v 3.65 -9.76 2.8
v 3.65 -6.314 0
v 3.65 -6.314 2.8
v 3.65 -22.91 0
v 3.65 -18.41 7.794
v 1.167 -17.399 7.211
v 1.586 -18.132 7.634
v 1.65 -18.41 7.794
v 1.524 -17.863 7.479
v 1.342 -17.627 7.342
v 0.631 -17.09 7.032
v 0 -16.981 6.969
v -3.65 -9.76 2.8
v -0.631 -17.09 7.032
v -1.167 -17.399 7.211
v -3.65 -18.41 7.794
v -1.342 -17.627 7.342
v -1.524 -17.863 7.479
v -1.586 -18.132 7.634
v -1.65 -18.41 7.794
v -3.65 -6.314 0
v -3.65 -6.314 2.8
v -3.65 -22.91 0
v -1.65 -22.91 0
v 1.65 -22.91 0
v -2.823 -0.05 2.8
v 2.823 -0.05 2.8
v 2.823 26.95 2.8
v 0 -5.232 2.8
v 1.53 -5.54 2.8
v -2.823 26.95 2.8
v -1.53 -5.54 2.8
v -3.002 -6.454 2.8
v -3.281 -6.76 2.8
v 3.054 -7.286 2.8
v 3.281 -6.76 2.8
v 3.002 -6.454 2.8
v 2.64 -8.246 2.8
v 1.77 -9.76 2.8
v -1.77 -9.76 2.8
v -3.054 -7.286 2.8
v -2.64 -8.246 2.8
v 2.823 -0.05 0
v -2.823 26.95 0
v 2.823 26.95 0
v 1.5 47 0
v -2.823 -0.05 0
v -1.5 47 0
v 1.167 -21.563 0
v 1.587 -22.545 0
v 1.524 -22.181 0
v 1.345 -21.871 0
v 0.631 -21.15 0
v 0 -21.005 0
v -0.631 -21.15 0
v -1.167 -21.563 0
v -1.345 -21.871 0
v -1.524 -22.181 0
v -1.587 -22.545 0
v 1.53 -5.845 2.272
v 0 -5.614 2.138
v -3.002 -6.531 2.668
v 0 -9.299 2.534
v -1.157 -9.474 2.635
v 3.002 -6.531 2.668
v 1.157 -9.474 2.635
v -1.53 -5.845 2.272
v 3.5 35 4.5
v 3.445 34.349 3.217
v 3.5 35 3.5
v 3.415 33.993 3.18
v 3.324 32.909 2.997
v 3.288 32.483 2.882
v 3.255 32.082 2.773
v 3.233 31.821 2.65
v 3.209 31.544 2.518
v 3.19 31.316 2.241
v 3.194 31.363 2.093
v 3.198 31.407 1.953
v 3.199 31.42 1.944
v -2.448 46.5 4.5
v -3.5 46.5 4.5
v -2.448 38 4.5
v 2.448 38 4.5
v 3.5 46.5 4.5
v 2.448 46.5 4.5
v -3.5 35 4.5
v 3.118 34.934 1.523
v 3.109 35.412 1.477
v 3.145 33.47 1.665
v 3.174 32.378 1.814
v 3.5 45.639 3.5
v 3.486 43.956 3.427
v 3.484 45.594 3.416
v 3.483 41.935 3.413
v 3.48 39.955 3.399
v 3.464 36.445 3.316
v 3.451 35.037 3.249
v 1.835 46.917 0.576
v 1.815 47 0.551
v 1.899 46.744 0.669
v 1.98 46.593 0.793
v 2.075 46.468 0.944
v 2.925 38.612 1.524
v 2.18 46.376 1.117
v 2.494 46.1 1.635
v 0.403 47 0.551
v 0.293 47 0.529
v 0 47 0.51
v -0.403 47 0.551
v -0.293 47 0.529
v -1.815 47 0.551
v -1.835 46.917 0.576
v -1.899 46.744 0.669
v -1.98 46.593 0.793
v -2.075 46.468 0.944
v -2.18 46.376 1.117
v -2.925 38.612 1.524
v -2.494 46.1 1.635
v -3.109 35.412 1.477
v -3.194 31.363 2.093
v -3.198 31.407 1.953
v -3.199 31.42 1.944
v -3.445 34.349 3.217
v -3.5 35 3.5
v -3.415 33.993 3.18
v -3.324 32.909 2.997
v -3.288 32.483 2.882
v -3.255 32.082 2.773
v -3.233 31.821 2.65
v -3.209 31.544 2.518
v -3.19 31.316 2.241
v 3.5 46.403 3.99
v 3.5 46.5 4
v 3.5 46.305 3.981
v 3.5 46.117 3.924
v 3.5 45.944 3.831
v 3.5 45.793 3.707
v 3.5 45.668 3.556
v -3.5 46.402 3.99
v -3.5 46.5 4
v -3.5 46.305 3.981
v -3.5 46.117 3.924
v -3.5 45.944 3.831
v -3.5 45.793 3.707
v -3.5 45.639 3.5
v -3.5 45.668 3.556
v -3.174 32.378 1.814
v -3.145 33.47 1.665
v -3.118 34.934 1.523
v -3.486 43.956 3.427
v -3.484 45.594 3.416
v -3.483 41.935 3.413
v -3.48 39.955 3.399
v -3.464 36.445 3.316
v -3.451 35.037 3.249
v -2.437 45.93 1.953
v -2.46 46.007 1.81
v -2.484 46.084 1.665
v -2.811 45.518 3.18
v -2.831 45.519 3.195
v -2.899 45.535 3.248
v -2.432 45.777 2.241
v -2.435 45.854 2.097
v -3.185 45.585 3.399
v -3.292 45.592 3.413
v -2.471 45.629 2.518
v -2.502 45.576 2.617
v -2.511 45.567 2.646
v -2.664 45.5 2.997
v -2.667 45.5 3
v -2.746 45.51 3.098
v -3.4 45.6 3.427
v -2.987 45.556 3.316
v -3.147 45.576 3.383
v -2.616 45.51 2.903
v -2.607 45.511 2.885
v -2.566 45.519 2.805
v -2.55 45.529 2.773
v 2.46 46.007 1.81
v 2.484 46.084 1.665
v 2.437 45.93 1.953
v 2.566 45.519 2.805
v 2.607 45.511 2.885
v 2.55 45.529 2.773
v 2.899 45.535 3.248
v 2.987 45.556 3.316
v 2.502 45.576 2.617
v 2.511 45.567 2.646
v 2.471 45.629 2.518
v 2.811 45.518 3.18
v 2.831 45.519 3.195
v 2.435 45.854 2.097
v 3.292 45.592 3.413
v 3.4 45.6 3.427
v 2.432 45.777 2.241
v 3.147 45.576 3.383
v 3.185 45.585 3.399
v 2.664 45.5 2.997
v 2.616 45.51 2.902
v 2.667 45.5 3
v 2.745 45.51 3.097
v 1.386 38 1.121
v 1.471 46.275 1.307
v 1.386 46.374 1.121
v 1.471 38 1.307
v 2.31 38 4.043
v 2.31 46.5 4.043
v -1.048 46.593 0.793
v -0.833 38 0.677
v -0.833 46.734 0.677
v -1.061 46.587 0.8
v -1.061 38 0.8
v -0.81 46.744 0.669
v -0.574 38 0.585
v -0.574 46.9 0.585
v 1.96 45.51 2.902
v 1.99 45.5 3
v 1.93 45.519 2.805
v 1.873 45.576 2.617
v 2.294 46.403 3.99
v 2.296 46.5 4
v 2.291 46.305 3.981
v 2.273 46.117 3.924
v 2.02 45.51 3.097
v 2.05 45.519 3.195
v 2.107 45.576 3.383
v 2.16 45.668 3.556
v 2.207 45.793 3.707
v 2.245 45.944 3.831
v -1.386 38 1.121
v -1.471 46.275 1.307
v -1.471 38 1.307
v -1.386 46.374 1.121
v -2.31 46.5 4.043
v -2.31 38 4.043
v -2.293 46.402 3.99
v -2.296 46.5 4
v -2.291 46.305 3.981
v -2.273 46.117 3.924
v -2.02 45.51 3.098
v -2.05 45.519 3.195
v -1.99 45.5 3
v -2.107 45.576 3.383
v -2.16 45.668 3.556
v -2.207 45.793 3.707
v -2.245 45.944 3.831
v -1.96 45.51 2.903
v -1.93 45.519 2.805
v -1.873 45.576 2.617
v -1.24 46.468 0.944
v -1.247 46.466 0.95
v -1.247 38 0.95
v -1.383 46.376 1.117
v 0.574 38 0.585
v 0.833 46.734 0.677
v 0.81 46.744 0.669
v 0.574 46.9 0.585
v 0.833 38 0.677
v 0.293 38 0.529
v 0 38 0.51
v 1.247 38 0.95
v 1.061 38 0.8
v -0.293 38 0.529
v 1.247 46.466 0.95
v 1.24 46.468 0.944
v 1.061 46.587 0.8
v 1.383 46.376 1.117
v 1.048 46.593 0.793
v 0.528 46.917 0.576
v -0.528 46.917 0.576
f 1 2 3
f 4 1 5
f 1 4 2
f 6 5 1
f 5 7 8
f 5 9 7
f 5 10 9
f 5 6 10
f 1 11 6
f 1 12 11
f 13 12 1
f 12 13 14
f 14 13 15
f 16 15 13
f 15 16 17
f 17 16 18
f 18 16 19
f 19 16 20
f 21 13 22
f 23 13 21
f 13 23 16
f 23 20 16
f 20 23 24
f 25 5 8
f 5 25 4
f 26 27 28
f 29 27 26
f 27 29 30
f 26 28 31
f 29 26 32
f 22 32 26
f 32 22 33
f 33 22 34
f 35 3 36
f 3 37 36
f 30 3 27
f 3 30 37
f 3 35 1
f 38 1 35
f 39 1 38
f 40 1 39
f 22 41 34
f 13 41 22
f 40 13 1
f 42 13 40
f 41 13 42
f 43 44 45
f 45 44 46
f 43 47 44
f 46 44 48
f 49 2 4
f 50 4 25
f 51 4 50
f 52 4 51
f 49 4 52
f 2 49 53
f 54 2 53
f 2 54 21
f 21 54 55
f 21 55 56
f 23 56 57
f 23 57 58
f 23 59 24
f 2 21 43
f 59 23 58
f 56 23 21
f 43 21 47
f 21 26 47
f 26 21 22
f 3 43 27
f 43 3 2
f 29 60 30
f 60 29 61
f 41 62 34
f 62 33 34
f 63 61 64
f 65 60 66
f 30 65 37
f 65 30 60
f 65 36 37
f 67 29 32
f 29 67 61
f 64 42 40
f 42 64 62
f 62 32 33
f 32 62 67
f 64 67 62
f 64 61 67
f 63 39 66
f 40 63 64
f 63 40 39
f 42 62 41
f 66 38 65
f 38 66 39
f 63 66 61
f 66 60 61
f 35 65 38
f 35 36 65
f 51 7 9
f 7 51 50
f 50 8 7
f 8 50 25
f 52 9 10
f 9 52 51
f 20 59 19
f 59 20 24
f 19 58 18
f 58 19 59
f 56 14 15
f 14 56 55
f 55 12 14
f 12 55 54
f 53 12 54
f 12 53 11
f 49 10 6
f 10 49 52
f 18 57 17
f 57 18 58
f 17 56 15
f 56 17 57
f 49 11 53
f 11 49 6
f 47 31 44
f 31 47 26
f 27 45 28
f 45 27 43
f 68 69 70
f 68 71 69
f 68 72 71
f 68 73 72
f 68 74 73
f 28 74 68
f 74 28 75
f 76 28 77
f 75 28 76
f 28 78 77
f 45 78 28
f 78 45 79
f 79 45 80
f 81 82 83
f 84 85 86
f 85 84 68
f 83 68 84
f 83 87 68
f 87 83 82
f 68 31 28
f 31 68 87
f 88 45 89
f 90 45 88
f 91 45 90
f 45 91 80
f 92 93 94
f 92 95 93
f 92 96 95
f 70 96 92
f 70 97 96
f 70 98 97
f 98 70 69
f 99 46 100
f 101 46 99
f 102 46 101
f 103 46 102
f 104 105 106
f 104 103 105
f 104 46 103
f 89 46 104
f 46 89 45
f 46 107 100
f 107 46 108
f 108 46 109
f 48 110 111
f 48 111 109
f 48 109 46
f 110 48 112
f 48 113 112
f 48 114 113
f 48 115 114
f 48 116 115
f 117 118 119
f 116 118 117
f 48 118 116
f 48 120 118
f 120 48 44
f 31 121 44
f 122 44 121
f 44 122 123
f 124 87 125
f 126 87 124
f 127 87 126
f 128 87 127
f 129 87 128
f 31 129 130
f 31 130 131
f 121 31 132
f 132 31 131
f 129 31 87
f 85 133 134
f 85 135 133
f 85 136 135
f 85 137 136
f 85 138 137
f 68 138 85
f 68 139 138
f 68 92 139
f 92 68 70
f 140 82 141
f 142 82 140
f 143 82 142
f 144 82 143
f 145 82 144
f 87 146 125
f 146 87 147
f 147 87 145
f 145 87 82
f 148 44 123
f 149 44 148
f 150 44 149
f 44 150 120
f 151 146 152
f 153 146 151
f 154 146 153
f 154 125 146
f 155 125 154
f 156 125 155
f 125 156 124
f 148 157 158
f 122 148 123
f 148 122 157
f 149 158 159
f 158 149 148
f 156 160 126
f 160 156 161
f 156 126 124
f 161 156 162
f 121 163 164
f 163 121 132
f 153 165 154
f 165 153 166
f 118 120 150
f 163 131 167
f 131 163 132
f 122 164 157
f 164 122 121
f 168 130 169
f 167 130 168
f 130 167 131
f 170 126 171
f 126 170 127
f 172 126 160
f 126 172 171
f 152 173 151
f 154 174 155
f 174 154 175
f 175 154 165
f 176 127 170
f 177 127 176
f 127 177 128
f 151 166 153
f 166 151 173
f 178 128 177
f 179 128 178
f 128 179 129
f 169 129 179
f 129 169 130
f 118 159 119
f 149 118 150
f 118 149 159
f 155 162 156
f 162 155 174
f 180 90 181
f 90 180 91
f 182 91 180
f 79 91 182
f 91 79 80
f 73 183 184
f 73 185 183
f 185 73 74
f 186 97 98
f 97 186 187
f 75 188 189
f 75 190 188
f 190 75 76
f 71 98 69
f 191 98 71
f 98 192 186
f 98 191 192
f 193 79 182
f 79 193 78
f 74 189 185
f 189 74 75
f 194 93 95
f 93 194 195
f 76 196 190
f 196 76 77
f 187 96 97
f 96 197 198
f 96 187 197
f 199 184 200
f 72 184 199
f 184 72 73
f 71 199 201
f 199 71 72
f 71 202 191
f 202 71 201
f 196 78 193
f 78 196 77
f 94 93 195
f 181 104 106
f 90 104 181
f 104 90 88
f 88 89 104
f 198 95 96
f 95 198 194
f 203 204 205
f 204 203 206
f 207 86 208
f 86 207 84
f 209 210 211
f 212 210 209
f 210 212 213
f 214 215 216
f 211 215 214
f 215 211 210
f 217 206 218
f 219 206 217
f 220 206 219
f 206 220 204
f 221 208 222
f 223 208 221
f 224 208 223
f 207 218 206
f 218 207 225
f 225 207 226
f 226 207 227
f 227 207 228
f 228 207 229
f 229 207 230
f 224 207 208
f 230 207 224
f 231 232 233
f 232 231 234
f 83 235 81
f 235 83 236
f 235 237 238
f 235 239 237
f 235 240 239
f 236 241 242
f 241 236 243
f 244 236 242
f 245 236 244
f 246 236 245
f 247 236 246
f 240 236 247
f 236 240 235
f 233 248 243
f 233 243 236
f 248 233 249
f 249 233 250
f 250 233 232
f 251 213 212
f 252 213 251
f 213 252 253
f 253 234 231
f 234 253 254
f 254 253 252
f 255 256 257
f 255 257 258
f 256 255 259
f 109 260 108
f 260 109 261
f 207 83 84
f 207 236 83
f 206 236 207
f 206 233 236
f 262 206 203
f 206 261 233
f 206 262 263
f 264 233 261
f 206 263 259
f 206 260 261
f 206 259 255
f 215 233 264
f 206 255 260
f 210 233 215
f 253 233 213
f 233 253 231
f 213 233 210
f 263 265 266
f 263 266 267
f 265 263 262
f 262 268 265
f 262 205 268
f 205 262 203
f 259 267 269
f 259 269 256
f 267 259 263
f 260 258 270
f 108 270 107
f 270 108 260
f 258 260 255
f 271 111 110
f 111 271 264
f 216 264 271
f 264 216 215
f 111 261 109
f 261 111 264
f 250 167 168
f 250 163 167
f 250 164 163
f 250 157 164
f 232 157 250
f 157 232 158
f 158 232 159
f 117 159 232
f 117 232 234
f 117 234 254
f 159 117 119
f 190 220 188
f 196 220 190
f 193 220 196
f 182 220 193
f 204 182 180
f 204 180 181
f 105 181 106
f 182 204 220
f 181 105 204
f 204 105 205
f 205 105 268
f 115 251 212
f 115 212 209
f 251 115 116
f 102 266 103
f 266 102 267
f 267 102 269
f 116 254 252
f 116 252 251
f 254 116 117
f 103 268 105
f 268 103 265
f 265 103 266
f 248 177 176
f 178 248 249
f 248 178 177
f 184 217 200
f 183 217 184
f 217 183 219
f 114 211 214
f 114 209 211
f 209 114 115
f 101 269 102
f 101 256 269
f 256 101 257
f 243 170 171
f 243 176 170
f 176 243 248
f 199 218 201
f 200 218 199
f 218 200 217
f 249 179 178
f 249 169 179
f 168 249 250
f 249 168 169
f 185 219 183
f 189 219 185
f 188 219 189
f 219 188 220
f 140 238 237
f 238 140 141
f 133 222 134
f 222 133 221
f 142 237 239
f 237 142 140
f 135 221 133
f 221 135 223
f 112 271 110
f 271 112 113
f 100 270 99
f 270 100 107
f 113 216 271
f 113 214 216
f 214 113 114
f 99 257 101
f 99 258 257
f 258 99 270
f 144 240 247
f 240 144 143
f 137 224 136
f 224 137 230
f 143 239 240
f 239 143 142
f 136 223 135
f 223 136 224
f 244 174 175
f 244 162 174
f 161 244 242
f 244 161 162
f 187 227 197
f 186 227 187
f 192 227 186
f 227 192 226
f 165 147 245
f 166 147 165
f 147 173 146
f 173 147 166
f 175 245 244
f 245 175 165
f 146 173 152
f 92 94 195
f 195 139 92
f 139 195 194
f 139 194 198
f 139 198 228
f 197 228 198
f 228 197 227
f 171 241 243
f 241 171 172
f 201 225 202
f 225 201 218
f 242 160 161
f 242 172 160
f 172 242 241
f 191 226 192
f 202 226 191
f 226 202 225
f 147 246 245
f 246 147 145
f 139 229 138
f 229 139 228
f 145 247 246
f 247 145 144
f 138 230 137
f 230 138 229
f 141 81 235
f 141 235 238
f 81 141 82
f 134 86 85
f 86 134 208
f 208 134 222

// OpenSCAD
// file: microscope_parameters.scad
/******************************************************************
*                                                                 *
* OpenFlexure Microscope: Microscope Parameters                   *
*                                                                 *
* This is the top-level configuration file for the OpenFlexure    *
* microscope, an open microscope and 3-axis translation stage.    *
* It gets really good precision over a ~10mm range, by using      *
* plastic flexure mechanisms.                                     *
*                                                                 *
* Generally I've tried to put parts (or collections of closely    *
* related parts) in their own files.  However, all the parts      *
* depend on the geometry of the microscope - so these parameters  *
* are gathered together here.  In general, the ones you might     *
* to change are towards the top!  Lower-down ones are defined in  *
* terms of higher-up ones - confusion might arise if you redefine *
* these later...                                                  *
*                                                                 *
* (c) Richard Bowman, January 2016                                *
* Released under the CERN Open Hardware License                   *
*                                                                 *
* http://www.github.com/rwb27/openflexure_microscope              *
* http://www.docubricks.com/projects/openflexure-microscope       *
* http://www.waterscope.org                                       *
*                                                                 *
******************************************************************/

d = 0.05;
$fn=32;

// These are the most useful parameters to change!
big_stage = false;
motor_lugs = true;
version_numstring = "5.17.2";
camera = "picamera_2"; //see cameras/camera.scad for valid values
optics = big_stage?"rms_f40d16":"pilens"; //see optics.scad for valid values

// This sets the basic geometry of the microscope
sample_z = big_stage?65:40; // height of the top of the stage
leg_r = big_stage?30:25; // radius of innermost part of legs (stage size)
hole_r = big_stage?15:10; // size of hole in the stage
xy_lever_ratio = big_stage?4.0/7.0:1.0; // mechanical advantage of actuator over stage - can be used to trade speed and precision
z_lever_ratio = big_stage?2.4:2.6; // as above, for Z axis (must be >1)
// The variables below affect the position of the objective mount
z_strut_l = big_stage?20:15; //length of struts supporting Z carriage
objective_clip_y = big_stage?12:6; // y position of clip for optics
objective_clip_w = 10; // width of the dovetail clip for the optics
foot_height = 15; //height of the feet (distance from bottom of body to table)

// These variables set the dimensions of flexures
// You might want to tweak them if your material (or printer)
// is different from the ones I've tested, though ABS/PLA extrusion
// is generally fine with my parameters
stage_flex_w = 4; // width of XY axis flexures
zflex_l = 1.5;    // length of (all) flexible bits
zflex_t = 0.75;   // thickness of (all) flexible bits
zflex = [stage_flex_w, zflex_l, zflex_t]; // the above in new-style format
flex_a = 0.15;    // sine of the angle through which flexures can be bent

// Compile a sensible version string
version_string = str("v",version_numstring, big_stage?"-LS":"-SS", sample_z, motor_lugs?"-M":"");
echo(str("Compiling OpenFlexure Microscope ",version_string));

stage_t=5; //thickness of the XY stage (at thickest point, most is 1mm less)
flex_z1 = 0;      // z position of lower flexures for XY axis
flex_z2 = sample_z-stage_t; //height of upper XY flexures
z_strut_t = 6;  // (z) thickness of struts for Z axis
z_flex_w = 4;   // width of struts for Z axis
leg = [4,stage_flex_w,flex_z2+zflex_t]; // size of vertical legs
leg_middle_w = 12; // width of the middle part of each leg
actuator_h = 25; //height of the actuator columns
dz = 0.5; //small increment in Z (~ 2 layers)

leg_outer_w = leg_middle_w + 2*zflex_l + 2*leg[0]; // overall width of parallelogram legs that support the stagef
actuator = [3*1.2+2*2,(flex_z2 - flex_z1)*xy_lever_ratio,6]; // dimensions of the core part of the actuating levers for X and Y - NB should match the column_base_r in compact_nut_seat.scad
actuating_nut_r = (flex_z2 - flex_z1)*xy_lever_ratio; // distance from leg_r to the actuating nut/screw for the XY axes
xy_actuator_travel = actuating_nut_r*0.15; // distance moved by XY axis actuators
z_flexure_x = (leg_r-zflex_l-max(5,leg[2]*0.1))*sqrt(2); // x position of the outside of the Z-axis static anchors (either side of the XY stage, on the X axis)
z_flexure_spacing = min(flex_z2-actuator[2]-z_strut_l*0.22-2, 30); // distance between the two sets of flexures on the Z axis
z_carriage = [(z_flexure_x-zflex_l*2-z_strut_l)+d,4,z_flexure_spacing+zflex_t]; //size of the moving block for the Z carriage
z_nut_y = (z_strut_l+zflex_l)*z_lever_ratio+zflex_l/2; // position of Z actuator
z_actuator_travel = z_nut_y*0.15; // distance moved by the Z actuator
z_carriage_y = z_strut_l+2*zflex_l; // y position of moving pivot on Z axis
z_link_w = 4; // width of linking bar between top Z-axis flexure struts
bridge_dz = 10; // spacing between thin links on legs
base_t=1; // thickness of the flat base of the structure
wall_h=15; // height of the stiffening vertical(ish) walls
wall_t=2; //thickness of the stiffening walls
zawall_h = z_flexure_spacing - 5; //height of wall near Z anchor
zbwall_h = z_actuator_travel+z_strut_t+1+2; //height of bridge over Z lever
illumination_clip_y = (-(leg_r-zflex_l-wall_t/2+leg_outer_w/2)/sqrt(2)
                       -wall_t/2-1); //position of clip for
                      // illumination/back foot.  This is set to
                      // coincide with the wall between the back
                      // two legs.
illumination_arm_screws = [[0,illumination_clip_y+3,0],
                           [-z_flexure_x+3,-3,0],
                           [z_flexure_x-3,-3,0]];
                      // positions of screws that mount the adjustable version of the 
                      // illumination arm
condenser_clip_y = -8; //position of dovetail for condenser assembly
base_mounting_holes = [[-20,z_nut_y-4,0],[20,z_nut_y-4,0],[-z_flexure_x-4,-8,0],[z_flexure_x+4,-8,0]]; // holes to screw the microscope to a baseplate
// main file
/*

Tools for assembling the OpenFlexure Microscope v5.16

(c) 2016 Richard Bowman - released under CERN Open Hardware License

*/

use <utilities.scad>;
use <compact_nut_seat.scad>;
include <microscope_parameters.scad>;

ns = nut_slot_size();
shaft_d = nut_size()*1.1;
gap = 9; //size of the gap between gear and screw seat
swing_a = 30; //angle through which the tool swings
sso = ss_outer(25); //outer size of screw seat
handle_w = shaft_d+4; //width of the "handle" part
handle_l = sso[0]/2+gap; //length of handle part


module tool_handle(){
    w = handle_w;
    difference(){
        sequential_hull(){
            rotate([-swing_a,0,0]) translate([-w/2,0,0]) cube([w,sso[0]/2,gap]);
            translate([-w/2,ns[2],0]) cube([w,d,ns[2]]);
            translate([-w/2,sso[0]/2*cos(swing_a)+gap*sin(swing_a),0]) cube([w,d,ns[2]]);
            translate([-ns[0]/2,handle_l,0]) cube([ns[0],d,ns[2]]);
        }
        //ground (or bottom of gear)
        mirror([0,0,1]) cylinder(r=999,h=999,$fn=4);
        //screw seat (in swung-in position)
        rotate([0,180-swing_a,-90]) translate([0,0,-(gap+sso[2]/2)]) screw_seat_shell(25);
        //screw
        rotate([-swing_a,0,0]) cylinder(d=shaft_d,h=999,center=true, $fn=16);
    }
}

module xz_slice(){
    //slice out just the part of something that sits in the XZ plane
    intersection(){
        cube([9999,2*d,9999],center=true);
        children();
    }
}

module nut_tool(){
    w = ns[0]-0.6; //width of tool tip (needs to fit through the slot that's ns[0] wide
    h = ns[2]-0.7; //height of tool tip (needs to fit through slot)
    l = 5+sso[1]/2+3;
    difference(){
        union(){
            translate([0,-handle_l,0]) tool_handle();
            sequential_hull(){
                xz_slice() translate([0,-handle_l,0]) tool_handle();
                translate([-w/2, 5, 0]) cube([w, d, h]);
                translate([-w/2, l, 0]) cube([w, d, h]);
            }
        }
        
        //nut 
        translate([0,l,-d])rotate(30)cylinder(r=nut_size()*1.15, h=999, $fn=6);
        translate([0,l-nut_size()*1.15+0.4,-d]) cylinder(r=1,h=999,$fn=12);
    }
}

module band_tool(){
    w = ns[0]-0.5; //width of tool tip
    h = 4.5; //height of tool tip (needs to fit through slot)
    l = sso[2]/2+foot_height+5;
    // presently, the hook on the actuator is a 1mm radius cylinder, centred
    // 3.5mm from the edge of the (elliptical) wall of the screw seat.
    difference(){
        union(){
            translate([0,-handle_l,0]) tool_handle();
            hull(){
                xz_slice() translate([0,-handle_l,0]) tool_handle();
                translate([0,l-20,0]) xz_slice() translate([0,-handle_l,0]) tool_handle();
            }
            hull(){
                translate([0,l-20,0])xz_slice() translate([0,-handle_l,0]) tool_handle();
                translate([-3/2, l-12,0]) cube([3,12,h]);
                translate([-7/2, l-12,h-1]) cube([7,12,1]);
            }
        }
        // cut-out to clear the hook
        hull(){
            translate([0,l,1.5]) scale([1,1,0.66]) rotate([90,0,0]) cylinder(r=1.5,h=18,center=true);
            translate([0,l,2+3]) rotate([90,0,0]) cylinder(r=2.5,h=18,center=true);
        }
        // V shaped end to grip elastic bands
        translate([0,l,0]) hull(){
            translate([0,0.3,1.5]) rotate([0,90,0]) cylinder(r=1,h=999,center=true);
            translate([0,-0.5,h-1.5]) rotate([0,90,0]) cylinder(r=1,h=999,center=true);
        }
        translate([-99,l-0.5,h-1.5]) cube(999);
        // squeeze the sides slightly
        reflect([1,0,0]){
            translate([-7/2,l,h/2-0.3]) rotate([90,15,-3]) scale([1.1,1.5,1]) cylinder(r=1,h=999,center=true);
        }
    }
}


band_tool();
//translate([10,0,0]) nut_tool();
